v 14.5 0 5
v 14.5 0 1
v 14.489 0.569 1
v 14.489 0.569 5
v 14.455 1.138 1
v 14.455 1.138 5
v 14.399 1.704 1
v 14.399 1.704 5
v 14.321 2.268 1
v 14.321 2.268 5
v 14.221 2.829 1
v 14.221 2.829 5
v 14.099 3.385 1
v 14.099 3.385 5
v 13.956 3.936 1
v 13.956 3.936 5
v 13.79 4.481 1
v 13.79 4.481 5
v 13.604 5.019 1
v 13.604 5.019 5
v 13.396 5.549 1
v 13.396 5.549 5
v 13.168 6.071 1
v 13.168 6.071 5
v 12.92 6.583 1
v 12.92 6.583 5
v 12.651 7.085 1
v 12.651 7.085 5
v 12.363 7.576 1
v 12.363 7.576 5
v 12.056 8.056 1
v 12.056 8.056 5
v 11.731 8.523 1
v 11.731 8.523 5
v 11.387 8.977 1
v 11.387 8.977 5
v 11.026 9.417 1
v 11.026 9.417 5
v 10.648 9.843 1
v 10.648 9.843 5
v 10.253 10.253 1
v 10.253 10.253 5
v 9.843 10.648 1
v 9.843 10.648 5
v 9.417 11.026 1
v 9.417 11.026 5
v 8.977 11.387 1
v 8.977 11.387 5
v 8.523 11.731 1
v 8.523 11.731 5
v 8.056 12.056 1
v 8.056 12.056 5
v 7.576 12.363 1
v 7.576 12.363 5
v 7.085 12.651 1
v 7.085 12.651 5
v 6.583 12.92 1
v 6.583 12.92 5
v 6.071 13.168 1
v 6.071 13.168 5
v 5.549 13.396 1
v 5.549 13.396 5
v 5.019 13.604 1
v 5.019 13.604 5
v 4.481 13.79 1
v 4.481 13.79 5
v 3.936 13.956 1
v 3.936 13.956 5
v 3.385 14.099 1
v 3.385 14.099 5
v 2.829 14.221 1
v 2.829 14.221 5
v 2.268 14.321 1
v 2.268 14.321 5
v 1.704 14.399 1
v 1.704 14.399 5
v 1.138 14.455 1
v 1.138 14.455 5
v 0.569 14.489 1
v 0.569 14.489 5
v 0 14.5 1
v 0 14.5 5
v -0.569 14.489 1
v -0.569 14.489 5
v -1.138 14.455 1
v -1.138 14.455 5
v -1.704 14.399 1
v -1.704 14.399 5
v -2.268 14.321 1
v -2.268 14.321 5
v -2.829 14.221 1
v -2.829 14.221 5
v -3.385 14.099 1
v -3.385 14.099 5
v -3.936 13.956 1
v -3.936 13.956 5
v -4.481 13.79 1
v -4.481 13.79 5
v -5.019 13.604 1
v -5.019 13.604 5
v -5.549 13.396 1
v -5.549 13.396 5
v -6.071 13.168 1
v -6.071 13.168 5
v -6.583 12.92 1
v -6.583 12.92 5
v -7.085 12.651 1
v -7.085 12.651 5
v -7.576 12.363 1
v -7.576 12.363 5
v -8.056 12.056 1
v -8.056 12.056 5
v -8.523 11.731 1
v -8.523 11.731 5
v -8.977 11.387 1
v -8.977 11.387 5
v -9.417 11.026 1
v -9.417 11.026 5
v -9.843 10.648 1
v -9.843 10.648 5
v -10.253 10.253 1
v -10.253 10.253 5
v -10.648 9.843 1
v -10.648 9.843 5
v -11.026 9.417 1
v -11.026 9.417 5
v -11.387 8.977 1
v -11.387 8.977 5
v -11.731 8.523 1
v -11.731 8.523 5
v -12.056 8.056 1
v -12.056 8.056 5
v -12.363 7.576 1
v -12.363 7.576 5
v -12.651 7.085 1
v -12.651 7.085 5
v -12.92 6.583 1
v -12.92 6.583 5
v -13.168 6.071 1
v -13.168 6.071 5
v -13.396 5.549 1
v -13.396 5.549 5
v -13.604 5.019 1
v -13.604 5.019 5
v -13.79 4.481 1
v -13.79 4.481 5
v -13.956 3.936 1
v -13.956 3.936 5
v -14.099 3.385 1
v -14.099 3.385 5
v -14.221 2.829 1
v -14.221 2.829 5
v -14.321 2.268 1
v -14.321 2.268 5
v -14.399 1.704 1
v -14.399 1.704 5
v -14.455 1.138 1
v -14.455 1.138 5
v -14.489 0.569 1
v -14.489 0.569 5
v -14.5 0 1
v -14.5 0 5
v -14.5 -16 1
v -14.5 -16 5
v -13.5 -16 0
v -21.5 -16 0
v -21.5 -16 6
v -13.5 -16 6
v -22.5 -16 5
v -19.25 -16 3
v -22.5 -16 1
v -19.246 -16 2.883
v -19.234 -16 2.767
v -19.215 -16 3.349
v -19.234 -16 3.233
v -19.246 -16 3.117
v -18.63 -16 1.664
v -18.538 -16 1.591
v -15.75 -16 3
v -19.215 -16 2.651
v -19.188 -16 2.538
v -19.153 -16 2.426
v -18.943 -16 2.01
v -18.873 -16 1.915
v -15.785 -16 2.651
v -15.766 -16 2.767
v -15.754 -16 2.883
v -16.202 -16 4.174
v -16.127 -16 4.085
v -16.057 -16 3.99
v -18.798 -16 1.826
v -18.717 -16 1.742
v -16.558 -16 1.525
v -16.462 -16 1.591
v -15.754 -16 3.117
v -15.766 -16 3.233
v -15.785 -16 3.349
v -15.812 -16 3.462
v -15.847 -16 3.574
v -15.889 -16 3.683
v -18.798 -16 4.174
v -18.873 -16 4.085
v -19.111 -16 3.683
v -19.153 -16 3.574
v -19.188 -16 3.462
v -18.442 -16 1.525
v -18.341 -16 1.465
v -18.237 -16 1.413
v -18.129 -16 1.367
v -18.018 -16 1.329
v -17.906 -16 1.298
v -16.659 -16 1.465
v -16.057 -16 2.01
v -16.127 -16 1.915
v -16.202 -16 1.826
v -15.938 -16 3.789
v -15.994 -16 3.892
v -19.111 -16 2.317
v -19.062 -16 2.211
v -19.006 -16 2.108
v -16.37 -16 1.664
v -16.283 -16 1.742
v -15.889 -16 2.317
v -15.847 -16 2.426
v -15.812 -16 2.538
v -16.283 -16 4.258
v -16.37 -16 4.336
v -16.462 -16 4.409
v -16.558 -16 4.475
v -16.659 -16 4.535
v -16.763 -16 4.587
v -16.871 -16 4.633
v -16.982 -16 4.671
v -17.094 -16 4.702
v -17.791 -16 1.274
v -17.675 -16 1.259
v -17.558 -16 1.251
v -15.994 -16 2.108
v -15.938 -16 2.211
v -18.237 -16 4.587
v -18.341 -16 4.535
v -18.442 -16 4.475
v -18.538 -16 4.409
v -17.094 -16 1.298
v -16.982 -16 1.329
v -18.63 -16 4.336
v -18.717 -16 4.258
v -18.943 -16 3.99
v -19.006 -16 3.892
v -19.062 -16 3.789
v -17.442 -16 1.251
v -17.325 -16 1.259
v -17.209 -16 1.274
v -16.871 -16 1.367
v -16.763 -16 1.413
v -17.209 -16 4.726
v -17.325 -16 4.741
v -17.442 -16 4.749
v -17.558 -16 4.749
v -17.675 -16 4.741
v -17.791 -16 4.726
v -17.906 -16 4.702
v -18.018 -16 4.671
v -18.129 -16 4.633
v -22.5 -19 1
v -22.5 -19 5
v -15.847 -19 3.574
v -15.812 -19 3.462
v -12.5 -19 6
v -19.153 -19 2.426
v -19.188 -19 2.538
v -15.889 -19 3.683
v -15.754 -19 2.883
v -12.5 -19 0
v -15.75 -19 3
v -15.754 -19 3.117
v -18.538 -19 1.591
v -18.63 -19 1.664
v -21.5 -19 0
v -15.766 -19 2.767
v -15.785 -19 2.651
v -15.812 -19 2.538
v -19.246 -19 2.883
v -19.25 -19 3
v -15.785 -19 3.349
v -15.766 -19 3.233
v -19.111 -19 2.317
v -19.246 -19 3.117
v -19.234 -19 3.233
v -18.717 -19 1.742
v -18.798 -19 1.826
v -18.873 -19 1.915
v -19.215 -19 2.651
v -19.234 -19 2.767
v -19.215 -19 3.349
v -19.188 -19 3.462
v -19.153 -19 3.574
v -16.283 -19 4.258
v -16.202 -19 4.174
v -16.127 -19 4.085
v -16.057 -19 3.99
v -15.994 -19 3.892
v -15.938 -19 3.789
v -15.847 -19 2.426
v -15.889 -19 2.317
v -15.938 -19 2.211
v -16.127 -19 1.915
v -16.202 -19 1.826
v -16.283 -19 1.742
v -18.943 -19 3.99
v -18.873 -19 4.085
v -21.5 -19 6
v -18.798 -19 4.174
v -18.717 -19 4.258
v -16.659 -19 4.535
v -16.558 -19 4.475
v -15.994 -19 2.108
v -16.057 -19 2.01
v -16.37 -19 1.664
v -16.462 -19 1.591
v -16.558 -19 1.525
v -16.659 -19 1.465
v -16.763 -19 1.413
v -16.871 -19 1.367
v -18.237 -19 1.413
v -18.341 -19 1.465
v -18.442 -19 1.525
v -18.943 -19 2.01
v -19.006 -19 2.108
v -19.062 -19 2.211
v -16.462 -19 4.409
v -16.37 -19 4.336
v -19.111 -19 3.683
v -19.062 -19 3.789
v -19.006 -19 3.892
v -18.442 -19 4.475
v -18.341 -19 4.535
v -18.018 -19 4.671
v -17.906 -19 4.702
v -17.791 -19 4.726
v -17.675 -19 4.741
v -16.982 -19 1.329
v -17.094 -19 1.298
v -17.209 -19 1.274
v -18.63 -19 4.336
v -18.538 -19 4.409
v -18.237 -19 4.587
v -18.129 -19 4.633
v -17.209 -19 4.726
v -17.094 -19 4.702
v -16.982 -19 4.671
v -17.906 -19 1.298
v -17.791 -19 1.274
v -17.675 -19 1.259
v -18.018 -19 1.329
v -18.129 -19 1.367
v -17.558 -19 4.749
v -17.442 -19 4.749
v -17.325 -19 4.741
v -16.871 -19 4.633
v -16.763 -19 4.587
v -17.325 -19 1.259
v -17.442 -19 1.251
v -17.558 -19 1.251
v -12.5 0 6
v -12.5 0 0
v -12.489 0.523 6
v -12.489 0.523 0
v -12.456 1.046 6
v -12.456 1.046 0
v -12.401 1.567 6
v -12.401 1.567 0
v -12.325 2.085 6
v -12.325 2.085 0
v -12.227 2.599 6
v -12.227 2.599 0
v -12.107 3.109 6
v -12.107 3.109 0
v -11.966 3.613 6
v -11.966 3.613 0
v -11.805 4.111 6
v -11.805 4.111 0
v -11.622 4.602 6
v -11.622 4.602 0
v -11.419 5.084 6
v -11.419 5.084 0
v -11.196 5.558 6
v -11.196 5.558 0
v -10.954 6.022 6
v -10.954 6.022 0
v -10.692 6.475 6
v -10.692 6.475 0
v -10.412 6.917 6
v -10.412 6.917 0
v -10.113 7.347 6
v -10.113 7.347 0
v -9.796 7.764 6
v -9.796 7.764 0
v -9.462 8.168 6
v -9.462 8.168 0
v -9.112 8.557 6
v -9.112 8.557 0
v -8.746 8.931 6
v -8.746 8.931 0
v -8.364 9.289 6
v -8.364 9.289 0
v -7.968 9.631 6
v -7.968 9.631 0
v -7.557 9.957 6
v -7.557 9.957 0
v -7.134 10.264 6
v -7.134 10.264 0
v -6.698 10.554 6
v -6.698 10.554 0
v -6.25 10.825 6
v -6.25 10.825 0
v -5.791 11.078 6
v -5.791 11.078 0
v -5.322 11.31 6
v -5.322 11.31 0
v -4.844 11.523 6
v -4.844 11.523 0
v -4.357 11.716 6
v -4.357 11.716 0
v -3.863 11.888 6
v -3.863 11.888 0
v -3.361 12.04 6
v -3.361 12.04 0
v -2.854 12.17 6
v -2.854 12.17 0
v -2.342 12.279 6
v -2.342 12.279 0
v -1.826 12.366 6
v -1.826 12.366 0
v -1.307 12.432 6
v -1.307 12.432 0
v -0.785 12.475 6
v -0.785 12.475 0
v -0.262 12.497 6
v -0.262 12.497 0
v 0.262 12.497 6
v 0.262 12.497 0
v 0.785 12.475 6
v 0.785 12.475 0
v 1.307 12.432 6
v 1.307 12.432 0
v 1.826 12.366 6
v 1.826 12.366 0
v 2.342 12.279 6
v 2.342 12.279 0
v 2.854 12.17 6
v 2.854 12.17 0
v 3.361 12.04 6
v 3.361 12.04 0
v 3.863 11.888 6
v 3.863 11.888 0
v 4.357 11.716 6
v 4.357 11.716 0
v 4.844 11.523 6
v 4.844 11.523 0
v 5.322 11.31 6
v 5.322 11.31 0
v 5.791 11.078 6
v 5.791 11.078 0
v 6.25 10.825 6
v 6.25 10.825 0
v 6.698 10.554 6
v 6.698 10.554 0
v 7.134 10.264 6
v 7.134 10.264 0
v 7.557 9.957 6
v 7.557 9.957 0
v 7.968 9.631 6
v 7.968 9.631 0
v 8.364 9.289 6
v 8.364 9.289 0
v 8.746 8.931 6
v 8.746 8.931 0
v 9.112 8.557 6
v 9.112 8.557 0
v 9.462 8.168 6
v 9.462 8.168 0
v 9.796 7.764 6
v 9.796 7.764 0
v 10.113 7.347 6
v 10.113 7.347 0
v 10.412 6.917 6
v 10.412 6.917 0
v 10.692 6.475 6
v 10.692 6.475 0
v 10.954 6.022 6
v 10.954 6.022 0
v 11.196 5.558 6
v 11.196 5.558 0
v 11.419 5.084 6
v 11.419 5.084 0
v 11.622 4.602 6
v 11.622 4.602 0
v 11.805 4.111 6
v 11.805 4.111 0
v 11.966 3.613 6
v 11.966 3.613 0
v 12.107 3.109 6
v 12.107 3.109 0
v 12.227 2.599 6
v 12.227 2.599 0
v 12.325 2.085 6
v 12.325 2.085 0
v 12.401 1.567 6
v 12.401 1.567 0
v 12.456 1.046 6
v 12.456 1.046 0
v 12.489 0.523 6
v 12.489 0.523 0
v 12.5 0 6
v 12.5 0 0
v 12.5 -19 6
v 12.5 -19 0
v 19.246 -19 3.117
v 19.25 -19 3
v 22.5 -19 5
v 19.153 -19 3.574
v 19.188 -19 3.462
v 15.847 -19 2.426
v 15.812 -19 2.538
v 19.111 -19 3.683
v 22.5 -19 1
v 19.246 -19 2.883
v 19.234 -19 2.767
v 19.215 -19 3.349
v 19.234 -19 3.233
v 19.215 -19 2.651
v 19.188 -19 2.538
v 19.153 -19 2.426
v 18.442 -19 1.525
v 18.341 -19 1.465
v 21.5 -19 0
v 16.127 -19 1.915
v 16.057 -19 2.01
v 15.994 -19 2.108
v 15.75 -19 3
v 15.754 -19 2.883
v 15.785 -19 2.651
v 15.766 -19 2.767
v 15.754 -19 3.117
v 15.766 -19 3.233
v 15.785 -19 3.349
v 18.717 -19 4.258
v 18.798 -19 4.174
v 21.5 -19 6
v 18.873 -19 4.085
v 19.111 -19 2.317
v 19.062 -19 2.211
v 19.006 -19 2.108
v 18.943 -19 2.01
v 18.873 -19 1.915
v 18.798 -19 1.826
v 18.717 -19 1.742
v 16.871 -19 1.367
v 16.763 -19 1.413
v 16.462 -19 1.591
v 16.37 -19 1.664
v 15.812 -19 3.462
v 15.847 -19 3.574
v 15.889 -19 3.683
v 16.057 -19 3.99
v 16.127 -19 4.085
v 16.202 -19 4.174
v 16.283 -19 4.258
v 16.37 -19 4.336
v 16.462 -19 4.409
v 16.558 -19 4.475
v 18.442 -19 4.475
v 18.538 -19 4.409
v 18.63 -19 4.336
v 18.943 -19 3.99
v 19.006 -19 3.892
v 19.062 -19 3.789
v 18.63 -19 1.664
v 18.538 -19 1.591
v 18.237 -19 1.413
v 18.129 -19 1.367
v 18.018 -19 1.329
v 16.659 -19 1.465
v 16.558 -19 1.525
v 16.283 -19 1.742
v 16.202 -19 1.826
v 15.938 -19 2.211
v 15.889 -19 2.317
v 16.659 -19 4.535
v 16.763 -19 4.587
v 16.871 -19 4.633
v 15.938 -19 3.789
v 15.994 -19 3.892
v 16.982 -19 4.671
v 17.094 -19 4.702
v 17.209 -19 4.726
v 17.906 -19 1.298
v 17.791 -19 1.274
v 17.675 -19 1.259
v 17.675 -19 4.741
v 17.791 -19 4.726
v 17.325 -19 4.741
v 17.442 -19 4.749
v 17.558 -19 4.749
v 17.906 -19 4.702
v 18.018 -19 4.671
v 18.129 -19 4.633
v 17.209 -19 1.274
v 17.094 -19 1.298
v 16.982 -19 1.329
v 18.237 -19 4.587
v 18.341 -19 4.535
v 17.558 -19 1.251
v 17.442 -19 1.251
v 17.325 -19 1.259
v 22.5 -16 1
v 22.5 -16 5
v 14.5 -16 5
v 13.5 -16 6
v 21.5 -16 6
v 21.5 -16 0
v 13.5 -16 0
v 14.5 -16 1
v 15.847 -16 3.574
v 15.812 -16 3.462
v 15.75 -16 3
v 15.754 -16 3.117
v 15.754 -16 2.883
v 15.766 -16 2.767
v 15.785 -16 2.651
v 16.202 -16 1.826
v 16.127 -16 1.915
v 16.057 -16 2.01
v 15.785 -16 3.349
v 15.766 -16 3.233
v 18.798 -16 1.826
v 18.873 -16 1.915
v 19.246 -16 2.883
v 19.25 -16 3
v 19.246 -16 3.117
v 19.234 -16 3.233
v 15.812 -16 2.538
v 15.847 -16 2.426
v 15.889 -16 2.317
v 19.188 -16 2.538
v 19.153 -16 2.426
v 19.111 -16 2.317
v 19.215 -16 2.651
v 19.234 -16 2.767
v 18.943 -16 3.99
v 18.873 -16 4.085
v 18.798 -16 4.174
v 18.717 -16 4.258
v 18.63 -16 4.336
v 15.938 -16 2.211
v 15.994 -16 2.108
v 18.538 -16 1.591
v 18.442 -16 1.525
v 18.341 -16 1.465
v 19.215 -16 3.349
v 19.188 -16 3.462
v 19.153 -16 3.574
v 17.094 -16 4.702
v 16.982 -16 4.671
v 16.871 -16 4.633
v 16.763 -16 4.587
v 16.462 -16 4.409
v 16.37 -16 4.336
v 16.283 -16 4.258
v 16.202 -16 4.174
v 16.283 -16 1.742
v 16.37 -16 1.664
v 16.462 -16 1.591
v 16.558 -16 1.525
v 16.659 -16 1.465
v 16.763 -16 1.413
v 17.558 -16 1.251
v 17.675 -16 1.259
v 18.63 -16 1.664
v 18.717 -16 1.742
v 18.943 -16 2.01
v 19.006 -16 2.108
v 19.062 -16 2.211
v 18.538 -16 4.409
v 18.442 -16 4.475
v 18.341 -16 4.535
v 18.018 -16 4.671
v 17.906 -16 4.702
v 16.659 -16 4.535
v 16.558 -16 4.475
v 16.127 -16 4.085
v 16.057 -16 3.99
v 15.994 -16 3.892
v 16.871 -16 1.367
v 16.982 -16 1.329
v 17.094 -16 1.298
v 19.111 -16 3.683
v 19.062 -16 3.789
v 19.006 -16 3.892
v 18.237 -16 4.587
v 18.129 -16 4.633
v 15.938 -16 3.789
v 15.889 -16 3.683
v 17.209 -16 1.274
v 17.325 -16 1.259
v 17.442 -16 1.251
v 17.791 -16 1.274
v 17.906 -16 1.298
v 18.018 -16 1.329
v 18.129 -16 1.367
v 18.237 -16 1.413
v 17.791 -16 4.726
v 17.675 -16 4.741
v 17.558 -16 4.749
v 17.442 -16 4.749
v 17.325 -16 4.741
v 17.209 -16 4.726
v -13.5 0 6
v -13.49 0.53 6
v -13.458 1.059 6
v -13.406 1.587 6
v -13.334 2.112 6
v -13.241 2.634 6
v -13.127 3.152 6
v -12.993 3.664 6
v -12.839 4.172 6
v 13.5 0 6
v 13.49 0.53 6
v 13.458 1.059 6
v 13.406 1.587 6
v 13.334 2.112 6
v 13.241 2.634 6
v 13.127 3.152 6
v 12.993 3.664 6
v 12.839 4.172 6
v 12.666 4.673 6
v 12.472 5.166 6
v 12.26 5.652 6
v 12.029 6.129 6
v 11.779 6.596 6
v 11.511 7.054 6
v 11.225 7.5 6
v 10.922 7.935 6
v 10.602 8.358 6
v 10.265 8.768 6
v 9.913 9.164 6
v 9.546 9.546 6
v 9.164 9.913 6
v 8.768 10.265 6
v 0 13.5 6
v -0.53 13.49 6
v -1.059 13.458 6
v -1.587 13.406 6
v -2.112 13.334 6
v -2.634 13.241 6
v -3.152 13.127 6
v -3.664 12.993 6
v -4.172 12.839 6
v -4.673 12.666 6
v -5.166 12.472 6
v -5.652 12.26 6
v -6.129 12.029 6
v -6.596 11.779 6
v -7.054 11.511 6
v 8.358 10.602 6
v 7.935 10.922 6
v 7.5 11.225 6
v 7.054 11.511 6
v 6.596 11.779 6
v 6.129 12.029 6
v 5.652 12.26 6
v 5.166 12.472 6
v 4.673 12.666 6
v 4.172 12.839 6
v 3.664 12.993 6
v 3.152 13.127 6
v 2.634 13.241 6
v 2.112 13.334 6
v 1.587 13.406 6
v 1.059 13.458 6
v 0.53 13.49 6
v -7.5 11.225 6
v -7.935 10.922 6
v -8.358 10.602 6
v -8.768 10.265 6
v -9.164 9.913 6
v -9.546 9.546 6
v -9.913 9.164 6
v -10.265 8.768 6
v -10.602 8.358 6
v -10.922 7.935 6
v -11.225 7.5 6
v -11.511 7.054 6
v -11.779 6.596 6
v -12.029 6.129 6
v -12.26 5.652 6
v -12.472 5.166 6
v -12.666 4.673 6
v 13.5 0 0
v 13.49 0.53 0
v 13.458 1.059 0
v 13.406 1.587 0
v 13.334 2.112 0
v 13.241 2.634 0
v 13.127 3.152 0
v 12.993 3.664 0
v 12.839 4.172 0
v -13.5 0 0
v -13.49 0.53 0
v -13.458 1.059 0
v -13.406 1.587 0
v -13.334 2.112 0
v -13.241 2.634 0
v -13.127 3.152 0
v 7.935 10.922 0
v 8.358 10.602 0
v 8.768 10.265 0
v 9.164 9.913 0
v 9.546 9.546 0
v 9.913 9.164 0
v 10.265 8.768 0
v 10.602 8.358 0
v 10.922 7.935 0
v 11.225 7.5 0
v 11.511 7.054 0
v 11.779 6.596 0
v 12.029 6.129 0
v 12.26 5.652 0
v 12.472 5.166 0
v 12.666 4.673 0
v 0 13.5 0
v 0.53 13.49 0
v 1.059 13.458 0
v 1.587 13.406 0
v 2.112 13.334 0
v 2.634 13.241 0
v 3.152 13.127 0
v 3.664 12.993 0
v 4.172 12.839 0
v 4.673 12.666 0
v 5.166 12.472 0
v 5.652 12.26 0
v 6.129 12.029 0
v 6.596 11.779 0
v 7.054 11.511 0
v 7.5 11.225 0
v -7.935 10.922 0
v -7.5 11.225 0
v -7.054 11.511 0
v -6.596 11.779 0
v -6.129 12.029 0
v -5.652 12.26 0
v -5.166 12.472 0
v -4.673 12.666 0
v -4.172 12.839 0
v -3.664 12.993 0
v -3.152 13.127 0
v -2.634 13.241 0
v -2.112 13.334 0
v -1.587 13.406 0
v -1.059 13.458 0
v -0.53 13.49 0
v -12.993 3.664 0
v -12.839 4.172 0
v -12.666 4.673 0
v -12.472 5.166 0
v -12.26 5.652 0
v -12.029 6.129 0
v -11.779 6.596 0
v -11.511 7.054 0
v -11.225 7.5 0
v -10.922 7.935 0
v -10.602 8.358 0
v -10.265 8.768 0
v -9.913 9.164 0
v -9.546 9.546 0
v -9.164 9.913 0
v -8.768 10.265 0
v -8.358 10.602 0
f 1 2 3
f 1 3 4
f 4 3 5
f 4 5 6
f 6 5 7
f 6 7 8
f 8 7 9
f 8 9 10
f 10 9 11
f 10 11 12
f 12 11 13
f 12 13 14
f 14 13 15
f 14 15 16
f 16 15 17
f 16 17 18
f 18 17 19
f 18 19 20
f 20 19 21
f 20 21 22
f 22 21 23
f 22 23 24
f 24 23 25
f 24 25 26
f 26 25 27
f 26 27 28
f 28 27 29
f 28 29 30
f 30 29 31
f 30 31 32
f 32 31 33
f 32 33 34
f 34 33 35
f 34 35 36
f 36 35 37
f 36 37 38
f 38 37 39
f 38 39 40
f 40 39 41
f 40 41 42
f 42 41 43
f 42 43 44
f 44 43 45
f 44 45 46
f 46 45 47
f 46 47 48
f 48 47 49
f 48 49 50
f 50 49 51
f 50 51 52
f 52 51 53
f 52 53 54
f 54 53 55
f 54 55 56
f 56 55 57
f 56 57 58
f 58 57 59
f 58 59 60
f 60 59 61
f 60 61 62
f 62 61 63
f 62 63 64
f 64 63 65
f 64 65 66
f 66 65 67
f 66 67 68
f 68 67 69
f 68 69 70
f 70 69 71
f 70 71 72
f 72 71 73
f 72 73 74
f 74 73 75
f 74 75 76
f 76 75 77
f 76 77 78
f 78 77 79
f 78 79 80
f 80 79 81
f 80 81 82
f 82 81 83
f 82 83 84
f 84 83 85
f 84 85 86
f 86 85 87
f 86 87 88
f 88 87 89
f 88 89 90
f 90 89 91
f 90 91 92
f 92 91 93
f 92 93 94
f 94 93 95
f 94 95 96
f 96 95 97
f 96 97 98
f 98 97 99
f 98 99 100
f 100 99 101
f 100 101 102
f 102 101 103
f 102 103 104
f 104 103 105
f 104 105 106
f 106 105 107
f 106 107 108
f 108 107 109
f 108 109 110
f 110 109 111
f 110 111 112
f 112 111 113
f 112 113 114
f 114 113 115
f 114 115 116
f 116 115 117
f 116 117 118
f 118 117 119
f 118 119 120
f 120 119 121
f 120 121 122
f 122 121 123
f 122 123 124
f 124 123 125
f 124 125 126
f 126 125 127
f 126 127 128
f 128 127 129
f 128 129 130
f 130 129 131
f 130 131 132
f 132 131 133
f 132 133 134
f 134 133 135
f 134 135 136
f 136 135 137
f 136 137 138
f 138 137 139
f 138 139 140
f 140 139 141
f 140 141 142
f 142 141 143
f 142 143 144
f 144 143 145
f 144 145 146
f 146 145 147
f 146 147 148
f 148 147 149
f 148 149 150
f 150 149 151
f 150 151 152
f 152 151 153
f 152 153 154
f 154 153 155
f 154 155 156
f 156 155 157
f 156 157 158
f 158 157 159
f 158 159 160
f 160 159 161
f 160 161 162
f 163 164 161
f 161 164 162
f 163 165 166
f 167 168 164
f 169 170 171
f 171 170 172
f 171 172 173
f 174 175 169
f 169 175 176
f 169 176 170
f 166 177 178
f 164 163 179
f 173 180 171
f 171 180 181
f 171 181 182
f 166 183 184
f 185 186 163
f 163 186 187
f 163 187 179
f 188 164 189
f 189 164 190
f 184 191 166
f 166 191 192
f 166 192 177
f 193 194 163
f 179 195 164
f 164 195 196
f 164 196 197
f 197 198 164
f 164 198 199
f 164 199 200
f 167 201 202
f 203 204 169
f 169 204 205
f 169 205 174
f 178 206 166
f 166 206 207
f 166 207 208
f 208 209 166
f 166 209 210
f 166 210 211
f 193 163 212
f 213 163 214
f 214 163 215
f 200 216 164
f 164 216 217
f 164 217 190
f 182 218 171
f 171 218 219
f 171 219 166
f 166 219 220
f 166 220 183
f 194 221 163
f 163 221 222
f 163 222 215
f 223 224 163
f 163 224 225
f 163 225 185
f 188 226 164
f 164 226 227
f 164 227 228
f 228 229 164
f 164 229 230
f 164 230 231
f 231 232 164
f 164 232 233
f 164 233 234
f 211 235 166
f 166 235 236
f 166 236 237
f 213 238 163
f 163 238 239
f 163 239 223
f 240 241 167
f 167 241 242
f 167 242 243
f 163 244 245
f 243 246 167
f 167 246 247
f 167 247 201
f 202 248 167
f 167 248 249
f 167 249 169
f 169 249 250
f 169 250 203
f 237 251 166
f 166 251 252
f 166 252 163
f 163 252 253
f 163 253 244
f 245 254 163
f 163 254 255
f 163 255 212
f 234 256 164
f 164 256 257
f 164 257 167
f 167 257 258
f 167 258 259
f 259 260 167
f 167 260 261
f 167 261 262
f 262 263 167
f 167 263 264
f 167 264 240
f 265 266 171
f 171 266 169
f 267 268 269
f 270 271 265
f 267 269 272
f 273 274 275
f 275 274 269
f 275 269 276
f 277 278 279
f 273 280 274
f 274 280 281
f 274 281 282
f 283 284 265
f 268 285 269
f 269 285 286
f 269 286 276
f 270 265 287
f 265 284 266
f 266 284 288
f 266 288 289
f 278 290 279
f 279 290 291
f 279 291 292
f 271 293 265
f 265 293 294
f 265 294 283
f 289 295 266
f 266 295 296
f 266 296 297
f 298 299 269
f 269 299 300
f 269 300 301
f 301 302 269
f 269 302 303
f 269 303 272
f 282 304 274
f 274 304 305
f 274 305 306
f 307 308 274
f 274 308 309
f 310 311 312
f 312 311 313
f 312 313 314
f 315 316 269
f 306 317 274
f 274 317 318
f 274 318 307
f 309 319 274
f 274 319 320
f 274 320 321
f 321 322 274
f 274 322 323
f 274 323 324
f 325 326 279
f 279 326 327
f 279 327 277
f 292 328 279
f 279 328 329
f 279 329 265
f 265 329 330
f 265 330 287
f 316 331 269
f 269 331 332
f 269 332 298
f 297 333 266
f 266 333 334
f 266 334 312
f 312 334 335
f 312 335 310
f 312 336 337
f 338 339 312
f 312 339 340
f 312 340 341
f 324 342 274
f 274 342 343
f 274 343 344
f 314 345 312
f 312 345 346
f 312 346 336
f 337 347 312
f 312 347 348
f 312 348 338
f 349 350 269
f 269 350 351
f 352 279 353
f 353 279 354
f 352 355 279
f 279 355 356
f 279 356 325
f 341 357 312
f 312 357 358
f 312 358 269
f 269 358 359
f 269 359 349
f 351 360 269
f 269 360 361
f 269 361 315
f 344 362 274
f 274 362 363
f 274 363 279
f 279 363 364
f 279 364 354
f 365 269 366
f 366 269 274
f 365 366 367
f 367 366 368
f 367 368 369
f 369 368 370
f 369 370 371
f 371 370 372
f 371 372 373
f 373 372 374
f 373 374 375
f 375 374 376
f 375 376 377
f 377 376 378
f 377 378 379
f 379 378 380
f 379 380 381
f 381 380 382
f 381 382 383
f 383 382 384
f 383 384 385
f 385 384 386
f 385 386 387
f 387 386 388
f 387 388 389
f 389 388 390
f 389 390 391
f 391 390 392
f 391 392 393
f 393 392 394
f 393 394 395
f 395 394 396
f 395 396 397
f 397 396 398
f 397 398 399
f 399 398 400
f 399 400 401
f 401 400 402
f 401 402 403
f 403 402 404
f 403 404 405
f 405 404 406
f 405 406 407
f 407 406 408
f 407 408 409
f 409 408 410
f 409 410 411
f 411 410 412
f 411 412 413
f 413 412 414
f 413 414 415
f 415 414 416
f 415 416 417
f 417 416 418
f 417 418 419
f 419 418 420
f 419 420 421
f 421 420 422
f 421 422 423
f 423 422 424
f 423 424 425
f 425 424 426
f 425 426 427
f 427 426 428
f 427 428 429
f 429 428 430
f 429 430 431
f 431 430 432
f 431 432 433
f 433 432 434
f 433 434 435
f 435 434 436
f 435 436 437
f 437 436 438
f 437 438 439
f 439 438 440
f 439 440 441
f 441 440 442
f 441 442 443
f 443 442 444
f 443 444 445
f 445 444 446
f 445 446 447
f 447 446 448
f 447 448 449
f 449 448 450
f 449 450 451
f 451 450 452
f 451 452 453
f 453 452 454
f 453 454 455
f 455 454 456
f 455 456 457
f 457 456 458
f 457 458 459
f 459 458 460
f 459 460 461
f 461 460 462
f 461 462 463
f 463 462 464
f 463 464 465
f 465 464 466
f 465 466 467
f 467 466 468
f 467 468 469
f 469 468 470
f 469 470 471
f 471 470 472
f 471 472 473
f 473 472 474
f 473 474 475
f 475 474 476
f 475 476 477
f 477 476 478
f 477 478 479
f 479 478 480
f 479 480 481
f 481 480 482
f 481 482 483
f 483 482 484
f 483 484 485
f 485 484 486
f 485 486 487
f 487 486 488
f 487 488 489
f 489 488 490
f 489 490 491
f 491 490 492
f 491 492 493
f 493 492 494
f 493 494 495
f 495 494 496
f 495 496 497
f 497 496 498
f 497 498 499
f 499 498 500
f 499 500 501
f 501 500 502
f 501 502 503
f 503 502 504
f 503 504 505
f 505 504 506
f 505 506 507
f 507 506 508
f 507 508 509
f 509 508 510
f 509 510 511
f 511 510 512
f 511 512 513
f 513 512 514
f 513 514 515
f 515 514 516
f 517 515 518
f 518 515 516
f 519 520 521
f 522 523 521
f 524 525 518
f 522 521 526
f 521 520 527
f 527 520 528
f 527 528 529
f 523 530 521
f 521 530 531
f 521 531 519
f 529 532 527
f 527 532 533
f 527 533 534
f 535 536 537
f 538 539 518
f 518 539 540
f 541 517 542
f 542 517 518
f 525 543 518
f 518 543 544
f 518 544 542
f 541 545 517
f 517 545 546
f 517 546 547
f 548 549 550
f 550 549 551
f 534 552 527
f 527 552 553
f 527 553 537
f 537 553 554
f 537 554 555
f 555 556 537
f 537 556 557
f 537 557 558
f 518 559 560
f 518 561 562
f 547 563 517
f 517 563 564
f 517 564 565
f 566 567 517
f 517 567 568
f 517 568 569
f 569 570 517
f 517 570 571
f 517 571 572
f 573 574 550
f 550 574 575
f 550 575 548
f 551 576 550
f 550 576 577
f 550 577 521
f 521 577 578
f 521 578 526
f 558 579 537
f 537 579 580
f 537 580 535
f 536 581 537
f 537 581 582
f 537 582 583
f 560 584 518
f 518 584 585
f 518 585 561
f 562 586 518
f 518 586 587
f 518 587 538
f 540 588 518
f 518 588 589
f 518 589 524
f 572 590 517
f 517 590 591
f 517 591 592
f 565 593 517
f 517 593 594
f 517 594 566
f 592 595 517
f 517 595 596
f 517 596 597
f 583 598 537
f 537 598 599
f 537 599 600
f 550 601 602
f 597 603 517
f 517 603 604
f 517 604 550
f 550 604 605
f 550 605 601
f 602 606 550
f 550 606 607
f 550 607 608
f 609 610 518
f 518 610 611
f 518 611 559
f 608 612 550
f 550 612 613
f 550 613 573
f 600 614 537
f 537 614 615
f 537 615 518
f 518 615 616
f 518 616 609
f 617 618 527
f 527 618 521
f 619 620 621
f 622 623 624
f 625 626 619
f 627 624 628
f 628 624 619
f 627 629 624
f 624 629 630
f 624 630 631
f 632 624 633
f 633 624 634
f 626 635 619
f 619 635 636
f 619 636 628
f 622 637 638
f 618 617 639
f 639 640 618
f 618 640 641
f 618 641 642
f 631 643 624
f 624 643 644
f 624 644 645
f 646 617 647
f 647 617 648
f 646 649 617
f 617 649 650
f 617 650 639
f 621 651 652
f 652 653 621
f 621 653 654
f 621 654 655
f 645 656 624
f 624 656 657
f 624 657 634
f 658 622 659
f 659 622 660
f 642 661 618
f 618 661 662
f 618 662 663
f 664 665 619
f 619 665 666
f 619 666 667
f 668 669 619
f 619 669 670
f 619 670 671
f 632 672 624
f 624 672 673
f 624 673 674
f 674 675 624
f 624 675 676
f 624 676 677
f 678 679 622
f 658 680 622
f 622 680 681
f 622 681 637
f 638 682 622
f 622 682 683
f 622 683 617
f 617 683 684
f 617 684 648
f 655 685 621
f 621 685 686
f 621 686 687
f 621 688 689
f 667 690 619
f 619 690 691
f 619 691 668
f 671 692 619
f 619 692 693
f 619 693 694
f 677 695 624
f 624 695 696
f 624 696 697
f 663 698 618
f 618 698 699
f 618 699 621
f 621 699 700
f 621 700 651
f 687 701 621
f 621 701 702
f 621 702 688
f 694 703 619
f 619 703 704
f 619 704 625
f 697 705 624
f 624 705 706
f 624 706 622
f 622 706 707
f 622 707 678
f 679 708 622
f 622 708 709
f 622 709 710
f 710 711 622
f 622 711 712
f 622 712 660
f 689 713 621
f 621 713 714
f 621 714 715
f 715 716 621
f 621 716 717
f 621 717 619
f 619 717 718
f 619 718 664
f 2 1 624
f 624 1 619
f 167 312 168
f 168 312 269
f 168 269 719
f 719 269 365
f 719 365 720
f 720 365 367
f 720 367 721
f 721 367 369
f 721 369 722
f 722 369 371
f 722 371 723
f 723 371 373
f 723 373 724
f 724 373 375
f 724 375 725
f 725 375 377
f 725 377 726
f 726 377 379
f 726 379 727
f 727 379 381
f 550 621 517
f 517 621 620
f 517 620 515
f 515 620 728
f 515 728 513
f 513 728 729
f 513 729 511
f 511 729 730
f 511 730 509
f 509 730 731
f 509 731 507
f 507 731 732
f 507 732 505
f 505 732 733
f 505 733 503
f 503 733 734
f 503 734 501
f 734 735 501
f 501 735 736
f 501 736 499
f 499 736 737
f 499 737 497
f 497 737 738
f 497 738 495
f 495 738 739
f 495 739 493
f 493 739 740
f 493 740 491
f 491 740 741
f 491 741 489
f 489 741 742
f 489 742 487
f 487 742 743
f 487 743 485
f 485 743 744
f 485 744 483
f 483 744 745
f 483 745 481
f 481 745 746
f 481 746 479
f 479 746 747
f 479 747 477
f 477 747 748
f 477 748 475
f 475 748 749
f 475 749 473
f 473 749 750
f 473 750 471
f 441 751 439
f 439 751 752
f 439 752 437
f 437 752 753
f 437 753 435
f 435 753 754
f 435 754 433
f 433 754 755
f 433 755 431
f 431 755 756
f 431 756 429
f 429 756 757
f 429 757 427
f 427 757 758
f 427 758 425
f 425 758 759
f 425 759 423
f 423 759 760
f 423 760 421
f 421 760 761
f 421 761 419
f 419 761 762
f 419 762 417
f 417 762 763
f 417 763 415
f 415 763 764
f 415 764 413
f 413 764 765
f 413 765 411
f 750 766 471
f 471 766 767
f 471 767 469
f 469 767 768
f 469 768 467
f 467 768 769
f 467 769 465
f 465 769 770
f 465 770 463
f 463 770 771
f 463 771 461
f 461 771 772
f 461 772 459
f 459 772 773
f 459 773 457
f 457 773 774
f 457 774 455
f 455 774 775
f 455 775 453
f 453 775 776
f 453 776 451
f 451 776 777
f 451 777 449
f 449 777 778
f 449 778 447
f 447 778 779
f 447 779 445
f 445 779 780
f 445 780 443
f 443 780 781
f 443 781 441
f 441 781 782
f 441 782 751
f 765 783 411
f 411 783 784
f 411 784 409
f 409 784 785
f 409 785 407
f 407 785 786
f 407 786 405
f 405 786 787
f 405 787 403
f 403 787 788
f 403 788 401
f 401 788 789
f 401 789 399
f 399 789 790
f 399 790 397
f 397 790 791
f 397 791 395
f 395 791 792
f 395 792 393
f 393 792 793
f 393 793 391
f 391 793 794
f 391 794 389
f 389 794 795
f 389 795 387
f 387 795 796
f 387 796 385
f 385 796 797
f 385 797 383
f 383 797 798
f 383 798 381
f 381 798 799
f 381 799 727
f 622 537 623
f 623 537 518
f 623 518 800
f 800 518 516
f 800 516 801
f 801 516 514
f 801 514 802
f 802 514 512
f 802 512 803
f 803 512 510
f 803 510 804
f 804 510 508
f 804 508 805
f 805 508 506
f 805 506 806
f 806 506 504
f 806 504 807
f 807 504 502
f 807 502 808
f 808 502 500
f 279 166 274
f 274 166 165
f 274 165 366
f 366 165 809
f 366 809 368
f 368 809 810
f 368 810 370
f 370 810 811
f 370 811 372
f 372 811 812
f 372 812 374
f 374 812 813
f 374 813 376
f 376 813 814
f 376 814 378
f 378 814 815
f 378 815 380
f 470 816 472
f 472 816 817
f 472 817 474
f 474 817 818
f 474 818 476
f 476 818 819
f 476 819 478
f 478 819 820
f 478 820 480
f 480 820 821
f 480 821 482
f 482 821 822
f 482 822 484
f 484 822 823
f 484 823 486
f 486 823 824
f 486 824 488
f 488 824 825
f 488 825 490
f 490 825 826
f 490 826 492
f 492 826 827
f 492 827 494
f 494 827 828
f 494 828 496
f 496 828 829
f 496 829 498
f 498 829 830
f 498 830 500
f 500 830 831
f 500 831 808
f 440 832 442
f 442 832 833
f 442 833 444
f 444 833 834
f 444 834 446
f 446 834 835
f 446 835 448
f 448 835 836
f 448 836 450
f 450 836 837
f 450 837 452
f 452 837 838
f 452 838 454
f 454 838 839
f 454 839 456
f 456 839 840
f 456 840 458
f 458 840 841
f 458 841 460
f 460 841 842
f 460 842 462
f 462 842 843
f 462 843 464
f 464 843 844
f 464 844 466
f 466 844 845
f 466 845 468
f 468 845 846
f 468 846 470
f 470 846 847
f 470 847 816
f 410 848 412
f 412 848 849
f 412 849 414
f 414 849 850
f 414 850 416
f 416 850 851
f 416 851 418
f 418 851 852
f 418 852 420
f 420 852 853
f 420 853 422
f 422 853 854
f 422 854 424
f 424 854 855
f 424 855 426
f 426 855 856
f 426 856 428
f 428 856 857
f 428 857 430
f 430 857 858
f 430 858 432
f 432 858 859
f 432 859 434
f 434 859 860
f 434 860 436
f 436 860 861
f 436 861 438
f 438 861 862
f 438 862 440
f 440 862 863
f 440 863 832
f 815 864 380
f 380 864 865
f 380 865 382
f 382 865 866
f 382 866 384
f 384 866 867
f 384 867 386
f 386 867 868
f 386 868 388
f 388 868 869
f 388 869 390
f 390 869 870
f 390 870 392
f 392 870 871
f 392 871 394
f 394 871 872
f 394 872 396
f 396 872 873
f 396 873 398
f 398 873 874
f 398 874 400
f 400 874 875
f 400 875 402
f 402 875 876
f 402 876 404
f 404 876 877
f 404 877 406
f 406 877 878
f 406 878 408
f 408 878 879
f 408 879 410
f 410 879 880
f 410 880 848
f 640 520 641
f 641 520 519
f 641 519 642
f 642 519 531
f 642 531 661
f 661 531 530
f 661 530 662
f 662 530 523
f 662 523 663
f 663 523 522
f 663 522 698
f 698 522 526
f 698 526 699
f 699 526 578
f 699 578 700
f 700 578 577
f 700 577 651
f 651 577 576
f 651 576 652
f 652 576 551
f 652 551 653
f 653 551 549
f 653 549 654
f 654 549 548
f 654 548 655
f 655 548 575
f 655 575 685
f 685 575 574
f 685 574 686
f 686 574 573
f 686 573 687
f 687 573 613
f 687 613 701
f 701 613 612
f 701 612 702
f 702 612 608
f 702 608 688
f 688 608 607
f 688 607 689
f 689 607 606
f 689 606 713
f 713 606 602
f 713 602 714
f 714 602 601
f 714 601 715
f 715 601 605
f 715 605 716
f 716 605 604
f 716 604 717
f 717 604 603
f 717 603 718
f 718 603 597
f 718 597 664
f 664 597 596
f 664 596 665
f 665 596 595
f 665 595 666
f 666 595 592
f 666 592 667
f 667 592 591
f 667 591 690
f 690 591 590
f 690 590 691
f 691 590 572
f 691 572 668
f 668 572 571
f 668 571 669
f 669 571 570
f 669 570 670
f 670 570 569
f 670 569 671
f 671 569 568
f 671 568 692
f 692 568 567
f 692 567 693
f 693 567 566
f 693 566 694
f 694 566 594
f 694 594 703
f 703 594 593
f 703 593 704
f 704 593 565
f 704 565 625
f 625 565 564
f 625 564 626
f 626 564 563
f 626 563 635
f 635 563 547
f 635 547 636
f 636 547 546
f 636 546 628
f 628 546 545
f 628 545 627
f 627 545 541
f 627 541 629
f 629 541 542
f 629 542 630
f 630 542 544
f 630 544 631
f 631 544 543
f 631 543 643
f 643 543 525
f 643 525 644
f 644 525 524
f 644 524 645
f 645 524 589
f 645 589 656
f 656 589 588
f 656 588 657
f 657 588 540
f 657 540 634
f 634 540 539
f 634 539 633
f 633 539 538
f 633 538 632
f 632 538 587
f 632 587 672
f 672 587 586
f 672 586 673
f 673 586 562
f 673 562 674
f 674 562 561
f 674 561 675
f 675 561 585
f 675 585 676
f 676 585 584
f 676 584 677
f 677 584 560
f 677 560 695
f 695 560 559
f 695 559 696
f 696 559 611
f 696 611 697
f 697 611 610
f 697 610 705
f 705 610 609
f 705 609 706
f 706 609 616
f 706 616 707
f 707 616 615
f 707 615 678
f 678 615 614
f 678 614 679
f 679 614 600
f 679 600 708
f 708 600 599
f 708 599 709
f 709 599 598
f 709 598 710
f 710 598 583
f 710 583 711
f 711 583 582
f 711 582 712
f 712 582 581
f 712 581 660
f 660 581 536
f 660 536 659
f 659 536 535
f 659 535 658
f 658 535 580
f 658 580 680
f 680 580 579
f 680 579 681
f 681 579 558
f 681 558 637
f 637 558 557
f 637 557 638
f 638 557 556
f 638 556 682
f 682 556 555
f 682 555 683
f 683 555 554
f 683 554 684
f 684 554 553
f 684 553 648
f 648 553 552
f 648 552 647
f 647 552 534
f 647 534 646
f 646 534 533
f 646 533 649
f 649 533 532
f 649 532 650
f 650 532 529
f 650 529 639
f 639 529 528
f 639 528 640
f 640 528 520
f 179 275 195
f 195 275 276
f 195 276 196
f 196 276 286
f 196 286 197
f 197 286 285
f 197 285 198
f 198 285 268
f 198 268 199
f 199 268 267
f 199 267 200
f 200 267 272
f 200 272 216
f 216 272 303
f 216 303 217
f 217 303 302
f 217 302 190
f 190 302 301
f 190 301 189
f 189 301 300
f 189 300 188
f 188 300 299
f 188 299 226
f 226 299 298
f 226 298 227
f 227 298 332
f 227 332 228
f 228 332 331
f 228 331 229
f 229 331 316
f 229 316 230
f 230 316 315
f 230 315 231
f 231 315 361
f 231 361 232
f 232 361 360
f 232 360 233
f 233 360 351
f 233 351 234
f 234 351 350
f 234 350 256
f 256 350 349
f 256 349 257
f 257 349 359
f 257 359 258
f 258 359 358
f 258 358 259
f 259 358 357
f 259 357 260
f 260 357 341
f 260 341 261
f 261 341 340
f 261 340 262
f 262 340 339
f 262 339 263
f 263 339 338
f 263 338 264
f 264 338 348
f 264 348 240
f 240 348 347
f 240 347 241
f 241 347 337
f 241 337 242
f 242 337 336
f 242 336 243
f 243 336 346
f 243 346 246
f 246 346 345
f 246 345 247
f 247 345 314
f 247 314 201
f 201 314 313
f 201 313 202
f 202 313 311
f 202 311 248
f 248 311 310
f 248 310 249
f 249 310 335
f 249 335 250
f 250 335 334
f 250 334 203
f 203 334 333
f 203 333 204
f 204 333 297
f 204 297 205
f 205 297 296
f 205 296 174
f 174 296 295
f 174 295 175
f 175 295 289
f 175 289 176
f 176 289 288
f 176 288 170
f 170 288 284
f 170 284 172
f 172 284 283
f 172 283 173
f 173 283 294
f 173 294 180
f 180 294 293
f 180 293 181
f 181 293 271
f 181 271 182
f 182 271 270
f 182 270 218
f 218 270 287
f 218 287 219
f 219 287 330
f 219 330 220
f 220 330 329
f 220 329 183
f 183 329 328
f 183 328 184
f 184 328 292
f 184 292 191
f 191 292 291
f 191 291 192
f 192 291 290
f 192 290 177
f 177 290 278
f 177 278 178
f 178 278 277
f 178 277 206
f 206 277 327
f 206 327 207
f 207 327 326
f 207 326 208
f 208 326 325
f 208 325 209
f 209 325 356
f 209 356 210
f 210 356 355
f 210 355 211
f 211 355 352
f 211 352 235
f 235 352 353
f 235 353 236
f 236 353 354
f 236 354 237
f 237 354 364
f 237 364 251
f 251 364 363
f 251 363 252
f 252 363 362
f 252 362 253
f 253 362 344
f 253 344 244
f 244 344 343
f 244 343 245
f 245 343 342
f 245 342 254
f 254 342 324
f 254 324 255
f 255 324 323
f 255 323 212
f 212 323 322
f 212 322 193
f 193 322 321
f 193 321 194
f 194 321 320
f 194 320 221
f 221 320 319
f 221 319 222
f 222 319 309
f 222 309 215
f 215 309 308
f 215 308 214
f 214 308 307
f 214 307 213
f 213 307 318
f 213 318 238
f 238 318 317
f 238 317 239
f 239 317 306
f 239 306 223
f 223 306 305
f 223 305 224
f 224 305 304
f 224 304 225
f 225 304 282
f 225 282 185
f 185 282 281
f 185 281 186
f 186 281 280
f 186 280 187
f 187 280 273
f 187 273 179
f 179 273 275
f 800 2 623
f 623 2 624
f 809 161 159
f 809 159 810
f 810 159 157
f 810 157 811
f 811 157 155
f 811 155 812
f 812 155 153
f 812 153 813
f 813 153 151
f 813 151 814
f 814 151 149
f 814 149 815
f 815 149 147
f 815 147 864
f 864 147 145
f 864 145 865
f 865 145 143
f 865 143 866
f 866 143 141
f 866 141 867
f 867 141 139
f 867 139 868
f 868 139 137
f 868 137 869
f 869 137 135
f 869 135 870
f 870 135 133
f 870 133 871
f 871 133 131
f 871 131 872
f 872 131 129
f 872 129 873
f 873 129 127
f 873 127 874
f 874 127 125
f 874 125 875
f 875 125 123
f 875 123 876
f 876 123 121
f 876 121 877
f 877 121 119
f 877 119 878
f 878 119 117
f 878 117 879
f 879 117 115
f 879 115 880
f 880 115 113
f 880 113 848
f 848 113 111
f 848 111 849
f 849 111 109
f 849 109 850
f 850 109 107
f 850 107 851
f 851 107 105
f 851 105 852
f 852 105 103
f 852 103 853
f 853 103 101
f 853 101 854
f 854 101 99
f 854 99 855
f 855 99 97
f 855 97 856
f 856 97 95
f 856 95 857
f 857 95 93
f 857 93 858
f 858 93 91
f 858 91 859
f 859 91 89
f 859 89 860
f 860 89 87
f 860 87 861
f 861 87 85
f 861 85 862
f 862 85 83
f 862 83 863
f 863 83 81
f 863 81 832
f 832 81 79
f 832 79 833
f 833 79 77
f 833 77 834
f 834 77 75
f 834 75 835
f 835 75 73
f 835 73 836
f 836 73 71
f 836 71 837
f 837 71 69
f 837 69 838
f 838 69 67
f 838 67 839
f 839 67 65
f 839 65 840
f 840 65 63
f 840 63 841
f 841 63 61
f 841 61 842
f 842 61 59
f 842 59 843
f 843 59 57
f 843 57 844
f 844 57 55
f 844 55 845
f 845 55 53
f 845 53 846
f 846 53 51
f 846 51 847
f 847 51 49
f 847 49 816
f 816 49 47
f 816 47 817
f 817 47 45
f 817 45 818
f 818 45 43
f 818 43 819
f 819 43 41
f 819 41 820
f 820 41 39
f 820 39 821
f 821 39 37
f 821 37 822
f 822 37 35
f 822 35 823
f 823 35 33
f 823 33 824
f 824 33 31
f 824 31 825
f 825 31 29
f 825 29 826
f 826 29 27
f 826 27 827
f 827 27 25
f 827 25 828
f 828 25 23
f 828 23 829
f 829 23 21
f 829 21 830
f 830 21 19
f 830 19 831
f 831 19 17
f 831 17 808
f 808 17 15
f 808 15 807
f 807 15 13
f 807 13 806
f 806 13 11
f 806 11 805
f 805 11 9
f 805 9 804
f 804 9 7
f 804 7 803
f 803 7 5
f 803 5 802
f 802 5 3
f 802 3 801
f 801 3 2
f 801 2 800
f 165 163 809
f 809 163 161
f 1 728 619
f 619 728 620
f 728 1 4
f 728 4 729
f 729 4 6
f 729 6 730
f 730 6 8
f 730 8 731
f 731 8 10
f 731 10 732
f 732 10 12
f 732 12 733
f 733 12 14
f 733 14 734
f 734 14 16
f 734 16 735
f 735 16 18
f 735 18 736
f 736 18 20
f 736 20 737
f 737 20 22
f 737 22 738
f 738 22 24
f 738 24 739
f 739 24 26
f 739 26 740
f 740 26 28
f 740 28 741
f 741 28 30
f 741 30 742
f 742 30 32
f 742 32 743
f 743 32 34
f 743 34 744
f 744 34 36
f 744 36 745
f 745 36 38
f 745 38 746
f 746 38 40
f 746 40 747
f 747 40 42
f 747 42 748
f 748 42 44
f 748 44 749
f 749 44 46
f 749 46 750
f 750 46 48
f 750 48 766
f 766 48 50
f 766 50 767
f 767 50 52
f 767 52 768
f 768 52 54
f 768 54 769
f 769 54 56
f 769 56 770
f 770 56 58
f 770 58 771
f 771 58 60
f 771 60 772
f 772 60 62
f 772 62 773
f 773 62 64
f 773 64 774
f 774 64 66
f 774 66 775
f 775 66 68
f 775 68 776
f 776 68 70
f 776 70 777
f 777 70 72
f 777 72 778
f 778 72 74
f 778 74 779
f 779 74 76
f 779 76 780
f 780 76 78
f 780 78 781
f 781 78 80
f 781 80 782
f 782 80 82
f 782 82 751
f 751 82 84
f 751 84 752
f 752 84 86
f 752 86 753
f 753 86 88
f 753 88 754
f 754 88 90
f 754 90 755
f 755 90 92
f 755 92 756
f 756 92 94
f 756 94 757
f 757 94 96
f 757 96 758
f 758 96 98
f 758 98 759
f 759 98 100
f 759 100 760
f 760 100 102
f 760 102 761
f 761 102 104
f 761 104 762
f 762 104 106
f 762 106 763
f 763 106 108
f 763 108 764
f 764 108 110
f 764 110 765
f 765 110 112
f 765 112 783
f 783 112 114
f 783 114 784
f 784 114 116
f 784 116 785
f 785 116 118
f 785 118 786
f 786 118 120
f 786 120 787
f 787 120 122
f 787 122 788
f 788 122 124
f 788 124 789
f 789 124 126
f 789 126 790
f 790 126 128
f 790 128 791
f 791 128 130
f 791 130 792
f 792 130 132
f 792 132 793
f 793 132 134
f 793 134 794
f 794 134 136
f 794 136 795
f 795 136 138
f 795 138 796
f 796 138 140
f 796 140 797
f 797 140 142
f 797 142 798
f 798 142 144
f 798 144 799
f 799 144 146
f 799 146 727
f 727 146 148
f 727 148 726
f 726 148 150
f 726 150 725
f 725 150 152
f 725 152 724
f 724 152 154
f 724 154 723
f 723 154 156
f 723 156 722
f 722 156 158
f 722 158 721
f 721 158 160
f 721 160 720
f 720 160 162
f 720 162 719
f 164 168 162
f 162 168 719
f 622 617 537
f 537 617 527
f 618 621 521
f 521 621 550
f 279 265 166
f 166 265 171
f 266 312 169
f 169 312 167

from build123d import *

# Parameters (mm, degrees)
BOSS_EXTRUDE1_DEPTH = 6
SKETCH2_R           = 1.75
CUT_EXTRUDE1_DEPTH  = 41.798284278
CHAMFER1_SIZE       = 1


with BuildPart() as part:
    # Sketch1 → Boss-Extrude1 (new body)
    with BuildSketch(Plane.XY):
        with BuildLine():
            Line((-14.5, 0), (-14.5, -16))
            Line((-14.5, -16), (-22.5, -16))
            Line((-22.5, -16), (-22.5, -19))
            Line((-22.5, -19), (-12.5, -19))
            Line((-12.5, -19), (-12.5, 0))
            ThreePointArc((-12.5, 0), (0, 12.5), (12.5, 0))
            Line((12.5, 0), (12.5, -19))
            Line((12.5, -19), (22.5, -19))
            Line((22.5, -19), (22.5, -16))
            Line((22.5, -16), (14.5, -16))
            Line((14.5, -16), (14.5, 0))
            ThreePointArc((14.5, 0), (0, 14.5), (-14.5, 0))
        make_face()
    extrude(amount=BOSS_EXTRUDE1_DEPTH)

    # Sketch2 → Cut-Extrude1 (cut, through all)
    with BuildSketch(Plane.XZ.offset(19)):
        with Locations((-17.5, 3)):
            Circle(SKETCH2_R)
        with Locations((17.5, 3)):
            Circle(SKETCH2_R)
    extrude(amount=-CUT_EXTRUDE1_DEPTH, mode=Mode.SUBTRACT)

    # Chamfer1
    chamfer1_edges = [part.edges().sort_by_distance(p)[0] for p in [
        (14.5, -8, 0),
        (22.5, -17.5, 0),
        (-22.5, -17.5, 0),
        (-14.5, -8, 0),
        (0, 14.5, 0),
        (-22.5, -17.5, 6),
        (22.5, -17.5, 6),
        (14.5, -8, 6),
        (0, 14.5, 6),
        (-14.5, -8, 6),
    ]]
    chamfer(chamfer1_edges, length=CHAMFER1_SIZE)


solid = part.part
